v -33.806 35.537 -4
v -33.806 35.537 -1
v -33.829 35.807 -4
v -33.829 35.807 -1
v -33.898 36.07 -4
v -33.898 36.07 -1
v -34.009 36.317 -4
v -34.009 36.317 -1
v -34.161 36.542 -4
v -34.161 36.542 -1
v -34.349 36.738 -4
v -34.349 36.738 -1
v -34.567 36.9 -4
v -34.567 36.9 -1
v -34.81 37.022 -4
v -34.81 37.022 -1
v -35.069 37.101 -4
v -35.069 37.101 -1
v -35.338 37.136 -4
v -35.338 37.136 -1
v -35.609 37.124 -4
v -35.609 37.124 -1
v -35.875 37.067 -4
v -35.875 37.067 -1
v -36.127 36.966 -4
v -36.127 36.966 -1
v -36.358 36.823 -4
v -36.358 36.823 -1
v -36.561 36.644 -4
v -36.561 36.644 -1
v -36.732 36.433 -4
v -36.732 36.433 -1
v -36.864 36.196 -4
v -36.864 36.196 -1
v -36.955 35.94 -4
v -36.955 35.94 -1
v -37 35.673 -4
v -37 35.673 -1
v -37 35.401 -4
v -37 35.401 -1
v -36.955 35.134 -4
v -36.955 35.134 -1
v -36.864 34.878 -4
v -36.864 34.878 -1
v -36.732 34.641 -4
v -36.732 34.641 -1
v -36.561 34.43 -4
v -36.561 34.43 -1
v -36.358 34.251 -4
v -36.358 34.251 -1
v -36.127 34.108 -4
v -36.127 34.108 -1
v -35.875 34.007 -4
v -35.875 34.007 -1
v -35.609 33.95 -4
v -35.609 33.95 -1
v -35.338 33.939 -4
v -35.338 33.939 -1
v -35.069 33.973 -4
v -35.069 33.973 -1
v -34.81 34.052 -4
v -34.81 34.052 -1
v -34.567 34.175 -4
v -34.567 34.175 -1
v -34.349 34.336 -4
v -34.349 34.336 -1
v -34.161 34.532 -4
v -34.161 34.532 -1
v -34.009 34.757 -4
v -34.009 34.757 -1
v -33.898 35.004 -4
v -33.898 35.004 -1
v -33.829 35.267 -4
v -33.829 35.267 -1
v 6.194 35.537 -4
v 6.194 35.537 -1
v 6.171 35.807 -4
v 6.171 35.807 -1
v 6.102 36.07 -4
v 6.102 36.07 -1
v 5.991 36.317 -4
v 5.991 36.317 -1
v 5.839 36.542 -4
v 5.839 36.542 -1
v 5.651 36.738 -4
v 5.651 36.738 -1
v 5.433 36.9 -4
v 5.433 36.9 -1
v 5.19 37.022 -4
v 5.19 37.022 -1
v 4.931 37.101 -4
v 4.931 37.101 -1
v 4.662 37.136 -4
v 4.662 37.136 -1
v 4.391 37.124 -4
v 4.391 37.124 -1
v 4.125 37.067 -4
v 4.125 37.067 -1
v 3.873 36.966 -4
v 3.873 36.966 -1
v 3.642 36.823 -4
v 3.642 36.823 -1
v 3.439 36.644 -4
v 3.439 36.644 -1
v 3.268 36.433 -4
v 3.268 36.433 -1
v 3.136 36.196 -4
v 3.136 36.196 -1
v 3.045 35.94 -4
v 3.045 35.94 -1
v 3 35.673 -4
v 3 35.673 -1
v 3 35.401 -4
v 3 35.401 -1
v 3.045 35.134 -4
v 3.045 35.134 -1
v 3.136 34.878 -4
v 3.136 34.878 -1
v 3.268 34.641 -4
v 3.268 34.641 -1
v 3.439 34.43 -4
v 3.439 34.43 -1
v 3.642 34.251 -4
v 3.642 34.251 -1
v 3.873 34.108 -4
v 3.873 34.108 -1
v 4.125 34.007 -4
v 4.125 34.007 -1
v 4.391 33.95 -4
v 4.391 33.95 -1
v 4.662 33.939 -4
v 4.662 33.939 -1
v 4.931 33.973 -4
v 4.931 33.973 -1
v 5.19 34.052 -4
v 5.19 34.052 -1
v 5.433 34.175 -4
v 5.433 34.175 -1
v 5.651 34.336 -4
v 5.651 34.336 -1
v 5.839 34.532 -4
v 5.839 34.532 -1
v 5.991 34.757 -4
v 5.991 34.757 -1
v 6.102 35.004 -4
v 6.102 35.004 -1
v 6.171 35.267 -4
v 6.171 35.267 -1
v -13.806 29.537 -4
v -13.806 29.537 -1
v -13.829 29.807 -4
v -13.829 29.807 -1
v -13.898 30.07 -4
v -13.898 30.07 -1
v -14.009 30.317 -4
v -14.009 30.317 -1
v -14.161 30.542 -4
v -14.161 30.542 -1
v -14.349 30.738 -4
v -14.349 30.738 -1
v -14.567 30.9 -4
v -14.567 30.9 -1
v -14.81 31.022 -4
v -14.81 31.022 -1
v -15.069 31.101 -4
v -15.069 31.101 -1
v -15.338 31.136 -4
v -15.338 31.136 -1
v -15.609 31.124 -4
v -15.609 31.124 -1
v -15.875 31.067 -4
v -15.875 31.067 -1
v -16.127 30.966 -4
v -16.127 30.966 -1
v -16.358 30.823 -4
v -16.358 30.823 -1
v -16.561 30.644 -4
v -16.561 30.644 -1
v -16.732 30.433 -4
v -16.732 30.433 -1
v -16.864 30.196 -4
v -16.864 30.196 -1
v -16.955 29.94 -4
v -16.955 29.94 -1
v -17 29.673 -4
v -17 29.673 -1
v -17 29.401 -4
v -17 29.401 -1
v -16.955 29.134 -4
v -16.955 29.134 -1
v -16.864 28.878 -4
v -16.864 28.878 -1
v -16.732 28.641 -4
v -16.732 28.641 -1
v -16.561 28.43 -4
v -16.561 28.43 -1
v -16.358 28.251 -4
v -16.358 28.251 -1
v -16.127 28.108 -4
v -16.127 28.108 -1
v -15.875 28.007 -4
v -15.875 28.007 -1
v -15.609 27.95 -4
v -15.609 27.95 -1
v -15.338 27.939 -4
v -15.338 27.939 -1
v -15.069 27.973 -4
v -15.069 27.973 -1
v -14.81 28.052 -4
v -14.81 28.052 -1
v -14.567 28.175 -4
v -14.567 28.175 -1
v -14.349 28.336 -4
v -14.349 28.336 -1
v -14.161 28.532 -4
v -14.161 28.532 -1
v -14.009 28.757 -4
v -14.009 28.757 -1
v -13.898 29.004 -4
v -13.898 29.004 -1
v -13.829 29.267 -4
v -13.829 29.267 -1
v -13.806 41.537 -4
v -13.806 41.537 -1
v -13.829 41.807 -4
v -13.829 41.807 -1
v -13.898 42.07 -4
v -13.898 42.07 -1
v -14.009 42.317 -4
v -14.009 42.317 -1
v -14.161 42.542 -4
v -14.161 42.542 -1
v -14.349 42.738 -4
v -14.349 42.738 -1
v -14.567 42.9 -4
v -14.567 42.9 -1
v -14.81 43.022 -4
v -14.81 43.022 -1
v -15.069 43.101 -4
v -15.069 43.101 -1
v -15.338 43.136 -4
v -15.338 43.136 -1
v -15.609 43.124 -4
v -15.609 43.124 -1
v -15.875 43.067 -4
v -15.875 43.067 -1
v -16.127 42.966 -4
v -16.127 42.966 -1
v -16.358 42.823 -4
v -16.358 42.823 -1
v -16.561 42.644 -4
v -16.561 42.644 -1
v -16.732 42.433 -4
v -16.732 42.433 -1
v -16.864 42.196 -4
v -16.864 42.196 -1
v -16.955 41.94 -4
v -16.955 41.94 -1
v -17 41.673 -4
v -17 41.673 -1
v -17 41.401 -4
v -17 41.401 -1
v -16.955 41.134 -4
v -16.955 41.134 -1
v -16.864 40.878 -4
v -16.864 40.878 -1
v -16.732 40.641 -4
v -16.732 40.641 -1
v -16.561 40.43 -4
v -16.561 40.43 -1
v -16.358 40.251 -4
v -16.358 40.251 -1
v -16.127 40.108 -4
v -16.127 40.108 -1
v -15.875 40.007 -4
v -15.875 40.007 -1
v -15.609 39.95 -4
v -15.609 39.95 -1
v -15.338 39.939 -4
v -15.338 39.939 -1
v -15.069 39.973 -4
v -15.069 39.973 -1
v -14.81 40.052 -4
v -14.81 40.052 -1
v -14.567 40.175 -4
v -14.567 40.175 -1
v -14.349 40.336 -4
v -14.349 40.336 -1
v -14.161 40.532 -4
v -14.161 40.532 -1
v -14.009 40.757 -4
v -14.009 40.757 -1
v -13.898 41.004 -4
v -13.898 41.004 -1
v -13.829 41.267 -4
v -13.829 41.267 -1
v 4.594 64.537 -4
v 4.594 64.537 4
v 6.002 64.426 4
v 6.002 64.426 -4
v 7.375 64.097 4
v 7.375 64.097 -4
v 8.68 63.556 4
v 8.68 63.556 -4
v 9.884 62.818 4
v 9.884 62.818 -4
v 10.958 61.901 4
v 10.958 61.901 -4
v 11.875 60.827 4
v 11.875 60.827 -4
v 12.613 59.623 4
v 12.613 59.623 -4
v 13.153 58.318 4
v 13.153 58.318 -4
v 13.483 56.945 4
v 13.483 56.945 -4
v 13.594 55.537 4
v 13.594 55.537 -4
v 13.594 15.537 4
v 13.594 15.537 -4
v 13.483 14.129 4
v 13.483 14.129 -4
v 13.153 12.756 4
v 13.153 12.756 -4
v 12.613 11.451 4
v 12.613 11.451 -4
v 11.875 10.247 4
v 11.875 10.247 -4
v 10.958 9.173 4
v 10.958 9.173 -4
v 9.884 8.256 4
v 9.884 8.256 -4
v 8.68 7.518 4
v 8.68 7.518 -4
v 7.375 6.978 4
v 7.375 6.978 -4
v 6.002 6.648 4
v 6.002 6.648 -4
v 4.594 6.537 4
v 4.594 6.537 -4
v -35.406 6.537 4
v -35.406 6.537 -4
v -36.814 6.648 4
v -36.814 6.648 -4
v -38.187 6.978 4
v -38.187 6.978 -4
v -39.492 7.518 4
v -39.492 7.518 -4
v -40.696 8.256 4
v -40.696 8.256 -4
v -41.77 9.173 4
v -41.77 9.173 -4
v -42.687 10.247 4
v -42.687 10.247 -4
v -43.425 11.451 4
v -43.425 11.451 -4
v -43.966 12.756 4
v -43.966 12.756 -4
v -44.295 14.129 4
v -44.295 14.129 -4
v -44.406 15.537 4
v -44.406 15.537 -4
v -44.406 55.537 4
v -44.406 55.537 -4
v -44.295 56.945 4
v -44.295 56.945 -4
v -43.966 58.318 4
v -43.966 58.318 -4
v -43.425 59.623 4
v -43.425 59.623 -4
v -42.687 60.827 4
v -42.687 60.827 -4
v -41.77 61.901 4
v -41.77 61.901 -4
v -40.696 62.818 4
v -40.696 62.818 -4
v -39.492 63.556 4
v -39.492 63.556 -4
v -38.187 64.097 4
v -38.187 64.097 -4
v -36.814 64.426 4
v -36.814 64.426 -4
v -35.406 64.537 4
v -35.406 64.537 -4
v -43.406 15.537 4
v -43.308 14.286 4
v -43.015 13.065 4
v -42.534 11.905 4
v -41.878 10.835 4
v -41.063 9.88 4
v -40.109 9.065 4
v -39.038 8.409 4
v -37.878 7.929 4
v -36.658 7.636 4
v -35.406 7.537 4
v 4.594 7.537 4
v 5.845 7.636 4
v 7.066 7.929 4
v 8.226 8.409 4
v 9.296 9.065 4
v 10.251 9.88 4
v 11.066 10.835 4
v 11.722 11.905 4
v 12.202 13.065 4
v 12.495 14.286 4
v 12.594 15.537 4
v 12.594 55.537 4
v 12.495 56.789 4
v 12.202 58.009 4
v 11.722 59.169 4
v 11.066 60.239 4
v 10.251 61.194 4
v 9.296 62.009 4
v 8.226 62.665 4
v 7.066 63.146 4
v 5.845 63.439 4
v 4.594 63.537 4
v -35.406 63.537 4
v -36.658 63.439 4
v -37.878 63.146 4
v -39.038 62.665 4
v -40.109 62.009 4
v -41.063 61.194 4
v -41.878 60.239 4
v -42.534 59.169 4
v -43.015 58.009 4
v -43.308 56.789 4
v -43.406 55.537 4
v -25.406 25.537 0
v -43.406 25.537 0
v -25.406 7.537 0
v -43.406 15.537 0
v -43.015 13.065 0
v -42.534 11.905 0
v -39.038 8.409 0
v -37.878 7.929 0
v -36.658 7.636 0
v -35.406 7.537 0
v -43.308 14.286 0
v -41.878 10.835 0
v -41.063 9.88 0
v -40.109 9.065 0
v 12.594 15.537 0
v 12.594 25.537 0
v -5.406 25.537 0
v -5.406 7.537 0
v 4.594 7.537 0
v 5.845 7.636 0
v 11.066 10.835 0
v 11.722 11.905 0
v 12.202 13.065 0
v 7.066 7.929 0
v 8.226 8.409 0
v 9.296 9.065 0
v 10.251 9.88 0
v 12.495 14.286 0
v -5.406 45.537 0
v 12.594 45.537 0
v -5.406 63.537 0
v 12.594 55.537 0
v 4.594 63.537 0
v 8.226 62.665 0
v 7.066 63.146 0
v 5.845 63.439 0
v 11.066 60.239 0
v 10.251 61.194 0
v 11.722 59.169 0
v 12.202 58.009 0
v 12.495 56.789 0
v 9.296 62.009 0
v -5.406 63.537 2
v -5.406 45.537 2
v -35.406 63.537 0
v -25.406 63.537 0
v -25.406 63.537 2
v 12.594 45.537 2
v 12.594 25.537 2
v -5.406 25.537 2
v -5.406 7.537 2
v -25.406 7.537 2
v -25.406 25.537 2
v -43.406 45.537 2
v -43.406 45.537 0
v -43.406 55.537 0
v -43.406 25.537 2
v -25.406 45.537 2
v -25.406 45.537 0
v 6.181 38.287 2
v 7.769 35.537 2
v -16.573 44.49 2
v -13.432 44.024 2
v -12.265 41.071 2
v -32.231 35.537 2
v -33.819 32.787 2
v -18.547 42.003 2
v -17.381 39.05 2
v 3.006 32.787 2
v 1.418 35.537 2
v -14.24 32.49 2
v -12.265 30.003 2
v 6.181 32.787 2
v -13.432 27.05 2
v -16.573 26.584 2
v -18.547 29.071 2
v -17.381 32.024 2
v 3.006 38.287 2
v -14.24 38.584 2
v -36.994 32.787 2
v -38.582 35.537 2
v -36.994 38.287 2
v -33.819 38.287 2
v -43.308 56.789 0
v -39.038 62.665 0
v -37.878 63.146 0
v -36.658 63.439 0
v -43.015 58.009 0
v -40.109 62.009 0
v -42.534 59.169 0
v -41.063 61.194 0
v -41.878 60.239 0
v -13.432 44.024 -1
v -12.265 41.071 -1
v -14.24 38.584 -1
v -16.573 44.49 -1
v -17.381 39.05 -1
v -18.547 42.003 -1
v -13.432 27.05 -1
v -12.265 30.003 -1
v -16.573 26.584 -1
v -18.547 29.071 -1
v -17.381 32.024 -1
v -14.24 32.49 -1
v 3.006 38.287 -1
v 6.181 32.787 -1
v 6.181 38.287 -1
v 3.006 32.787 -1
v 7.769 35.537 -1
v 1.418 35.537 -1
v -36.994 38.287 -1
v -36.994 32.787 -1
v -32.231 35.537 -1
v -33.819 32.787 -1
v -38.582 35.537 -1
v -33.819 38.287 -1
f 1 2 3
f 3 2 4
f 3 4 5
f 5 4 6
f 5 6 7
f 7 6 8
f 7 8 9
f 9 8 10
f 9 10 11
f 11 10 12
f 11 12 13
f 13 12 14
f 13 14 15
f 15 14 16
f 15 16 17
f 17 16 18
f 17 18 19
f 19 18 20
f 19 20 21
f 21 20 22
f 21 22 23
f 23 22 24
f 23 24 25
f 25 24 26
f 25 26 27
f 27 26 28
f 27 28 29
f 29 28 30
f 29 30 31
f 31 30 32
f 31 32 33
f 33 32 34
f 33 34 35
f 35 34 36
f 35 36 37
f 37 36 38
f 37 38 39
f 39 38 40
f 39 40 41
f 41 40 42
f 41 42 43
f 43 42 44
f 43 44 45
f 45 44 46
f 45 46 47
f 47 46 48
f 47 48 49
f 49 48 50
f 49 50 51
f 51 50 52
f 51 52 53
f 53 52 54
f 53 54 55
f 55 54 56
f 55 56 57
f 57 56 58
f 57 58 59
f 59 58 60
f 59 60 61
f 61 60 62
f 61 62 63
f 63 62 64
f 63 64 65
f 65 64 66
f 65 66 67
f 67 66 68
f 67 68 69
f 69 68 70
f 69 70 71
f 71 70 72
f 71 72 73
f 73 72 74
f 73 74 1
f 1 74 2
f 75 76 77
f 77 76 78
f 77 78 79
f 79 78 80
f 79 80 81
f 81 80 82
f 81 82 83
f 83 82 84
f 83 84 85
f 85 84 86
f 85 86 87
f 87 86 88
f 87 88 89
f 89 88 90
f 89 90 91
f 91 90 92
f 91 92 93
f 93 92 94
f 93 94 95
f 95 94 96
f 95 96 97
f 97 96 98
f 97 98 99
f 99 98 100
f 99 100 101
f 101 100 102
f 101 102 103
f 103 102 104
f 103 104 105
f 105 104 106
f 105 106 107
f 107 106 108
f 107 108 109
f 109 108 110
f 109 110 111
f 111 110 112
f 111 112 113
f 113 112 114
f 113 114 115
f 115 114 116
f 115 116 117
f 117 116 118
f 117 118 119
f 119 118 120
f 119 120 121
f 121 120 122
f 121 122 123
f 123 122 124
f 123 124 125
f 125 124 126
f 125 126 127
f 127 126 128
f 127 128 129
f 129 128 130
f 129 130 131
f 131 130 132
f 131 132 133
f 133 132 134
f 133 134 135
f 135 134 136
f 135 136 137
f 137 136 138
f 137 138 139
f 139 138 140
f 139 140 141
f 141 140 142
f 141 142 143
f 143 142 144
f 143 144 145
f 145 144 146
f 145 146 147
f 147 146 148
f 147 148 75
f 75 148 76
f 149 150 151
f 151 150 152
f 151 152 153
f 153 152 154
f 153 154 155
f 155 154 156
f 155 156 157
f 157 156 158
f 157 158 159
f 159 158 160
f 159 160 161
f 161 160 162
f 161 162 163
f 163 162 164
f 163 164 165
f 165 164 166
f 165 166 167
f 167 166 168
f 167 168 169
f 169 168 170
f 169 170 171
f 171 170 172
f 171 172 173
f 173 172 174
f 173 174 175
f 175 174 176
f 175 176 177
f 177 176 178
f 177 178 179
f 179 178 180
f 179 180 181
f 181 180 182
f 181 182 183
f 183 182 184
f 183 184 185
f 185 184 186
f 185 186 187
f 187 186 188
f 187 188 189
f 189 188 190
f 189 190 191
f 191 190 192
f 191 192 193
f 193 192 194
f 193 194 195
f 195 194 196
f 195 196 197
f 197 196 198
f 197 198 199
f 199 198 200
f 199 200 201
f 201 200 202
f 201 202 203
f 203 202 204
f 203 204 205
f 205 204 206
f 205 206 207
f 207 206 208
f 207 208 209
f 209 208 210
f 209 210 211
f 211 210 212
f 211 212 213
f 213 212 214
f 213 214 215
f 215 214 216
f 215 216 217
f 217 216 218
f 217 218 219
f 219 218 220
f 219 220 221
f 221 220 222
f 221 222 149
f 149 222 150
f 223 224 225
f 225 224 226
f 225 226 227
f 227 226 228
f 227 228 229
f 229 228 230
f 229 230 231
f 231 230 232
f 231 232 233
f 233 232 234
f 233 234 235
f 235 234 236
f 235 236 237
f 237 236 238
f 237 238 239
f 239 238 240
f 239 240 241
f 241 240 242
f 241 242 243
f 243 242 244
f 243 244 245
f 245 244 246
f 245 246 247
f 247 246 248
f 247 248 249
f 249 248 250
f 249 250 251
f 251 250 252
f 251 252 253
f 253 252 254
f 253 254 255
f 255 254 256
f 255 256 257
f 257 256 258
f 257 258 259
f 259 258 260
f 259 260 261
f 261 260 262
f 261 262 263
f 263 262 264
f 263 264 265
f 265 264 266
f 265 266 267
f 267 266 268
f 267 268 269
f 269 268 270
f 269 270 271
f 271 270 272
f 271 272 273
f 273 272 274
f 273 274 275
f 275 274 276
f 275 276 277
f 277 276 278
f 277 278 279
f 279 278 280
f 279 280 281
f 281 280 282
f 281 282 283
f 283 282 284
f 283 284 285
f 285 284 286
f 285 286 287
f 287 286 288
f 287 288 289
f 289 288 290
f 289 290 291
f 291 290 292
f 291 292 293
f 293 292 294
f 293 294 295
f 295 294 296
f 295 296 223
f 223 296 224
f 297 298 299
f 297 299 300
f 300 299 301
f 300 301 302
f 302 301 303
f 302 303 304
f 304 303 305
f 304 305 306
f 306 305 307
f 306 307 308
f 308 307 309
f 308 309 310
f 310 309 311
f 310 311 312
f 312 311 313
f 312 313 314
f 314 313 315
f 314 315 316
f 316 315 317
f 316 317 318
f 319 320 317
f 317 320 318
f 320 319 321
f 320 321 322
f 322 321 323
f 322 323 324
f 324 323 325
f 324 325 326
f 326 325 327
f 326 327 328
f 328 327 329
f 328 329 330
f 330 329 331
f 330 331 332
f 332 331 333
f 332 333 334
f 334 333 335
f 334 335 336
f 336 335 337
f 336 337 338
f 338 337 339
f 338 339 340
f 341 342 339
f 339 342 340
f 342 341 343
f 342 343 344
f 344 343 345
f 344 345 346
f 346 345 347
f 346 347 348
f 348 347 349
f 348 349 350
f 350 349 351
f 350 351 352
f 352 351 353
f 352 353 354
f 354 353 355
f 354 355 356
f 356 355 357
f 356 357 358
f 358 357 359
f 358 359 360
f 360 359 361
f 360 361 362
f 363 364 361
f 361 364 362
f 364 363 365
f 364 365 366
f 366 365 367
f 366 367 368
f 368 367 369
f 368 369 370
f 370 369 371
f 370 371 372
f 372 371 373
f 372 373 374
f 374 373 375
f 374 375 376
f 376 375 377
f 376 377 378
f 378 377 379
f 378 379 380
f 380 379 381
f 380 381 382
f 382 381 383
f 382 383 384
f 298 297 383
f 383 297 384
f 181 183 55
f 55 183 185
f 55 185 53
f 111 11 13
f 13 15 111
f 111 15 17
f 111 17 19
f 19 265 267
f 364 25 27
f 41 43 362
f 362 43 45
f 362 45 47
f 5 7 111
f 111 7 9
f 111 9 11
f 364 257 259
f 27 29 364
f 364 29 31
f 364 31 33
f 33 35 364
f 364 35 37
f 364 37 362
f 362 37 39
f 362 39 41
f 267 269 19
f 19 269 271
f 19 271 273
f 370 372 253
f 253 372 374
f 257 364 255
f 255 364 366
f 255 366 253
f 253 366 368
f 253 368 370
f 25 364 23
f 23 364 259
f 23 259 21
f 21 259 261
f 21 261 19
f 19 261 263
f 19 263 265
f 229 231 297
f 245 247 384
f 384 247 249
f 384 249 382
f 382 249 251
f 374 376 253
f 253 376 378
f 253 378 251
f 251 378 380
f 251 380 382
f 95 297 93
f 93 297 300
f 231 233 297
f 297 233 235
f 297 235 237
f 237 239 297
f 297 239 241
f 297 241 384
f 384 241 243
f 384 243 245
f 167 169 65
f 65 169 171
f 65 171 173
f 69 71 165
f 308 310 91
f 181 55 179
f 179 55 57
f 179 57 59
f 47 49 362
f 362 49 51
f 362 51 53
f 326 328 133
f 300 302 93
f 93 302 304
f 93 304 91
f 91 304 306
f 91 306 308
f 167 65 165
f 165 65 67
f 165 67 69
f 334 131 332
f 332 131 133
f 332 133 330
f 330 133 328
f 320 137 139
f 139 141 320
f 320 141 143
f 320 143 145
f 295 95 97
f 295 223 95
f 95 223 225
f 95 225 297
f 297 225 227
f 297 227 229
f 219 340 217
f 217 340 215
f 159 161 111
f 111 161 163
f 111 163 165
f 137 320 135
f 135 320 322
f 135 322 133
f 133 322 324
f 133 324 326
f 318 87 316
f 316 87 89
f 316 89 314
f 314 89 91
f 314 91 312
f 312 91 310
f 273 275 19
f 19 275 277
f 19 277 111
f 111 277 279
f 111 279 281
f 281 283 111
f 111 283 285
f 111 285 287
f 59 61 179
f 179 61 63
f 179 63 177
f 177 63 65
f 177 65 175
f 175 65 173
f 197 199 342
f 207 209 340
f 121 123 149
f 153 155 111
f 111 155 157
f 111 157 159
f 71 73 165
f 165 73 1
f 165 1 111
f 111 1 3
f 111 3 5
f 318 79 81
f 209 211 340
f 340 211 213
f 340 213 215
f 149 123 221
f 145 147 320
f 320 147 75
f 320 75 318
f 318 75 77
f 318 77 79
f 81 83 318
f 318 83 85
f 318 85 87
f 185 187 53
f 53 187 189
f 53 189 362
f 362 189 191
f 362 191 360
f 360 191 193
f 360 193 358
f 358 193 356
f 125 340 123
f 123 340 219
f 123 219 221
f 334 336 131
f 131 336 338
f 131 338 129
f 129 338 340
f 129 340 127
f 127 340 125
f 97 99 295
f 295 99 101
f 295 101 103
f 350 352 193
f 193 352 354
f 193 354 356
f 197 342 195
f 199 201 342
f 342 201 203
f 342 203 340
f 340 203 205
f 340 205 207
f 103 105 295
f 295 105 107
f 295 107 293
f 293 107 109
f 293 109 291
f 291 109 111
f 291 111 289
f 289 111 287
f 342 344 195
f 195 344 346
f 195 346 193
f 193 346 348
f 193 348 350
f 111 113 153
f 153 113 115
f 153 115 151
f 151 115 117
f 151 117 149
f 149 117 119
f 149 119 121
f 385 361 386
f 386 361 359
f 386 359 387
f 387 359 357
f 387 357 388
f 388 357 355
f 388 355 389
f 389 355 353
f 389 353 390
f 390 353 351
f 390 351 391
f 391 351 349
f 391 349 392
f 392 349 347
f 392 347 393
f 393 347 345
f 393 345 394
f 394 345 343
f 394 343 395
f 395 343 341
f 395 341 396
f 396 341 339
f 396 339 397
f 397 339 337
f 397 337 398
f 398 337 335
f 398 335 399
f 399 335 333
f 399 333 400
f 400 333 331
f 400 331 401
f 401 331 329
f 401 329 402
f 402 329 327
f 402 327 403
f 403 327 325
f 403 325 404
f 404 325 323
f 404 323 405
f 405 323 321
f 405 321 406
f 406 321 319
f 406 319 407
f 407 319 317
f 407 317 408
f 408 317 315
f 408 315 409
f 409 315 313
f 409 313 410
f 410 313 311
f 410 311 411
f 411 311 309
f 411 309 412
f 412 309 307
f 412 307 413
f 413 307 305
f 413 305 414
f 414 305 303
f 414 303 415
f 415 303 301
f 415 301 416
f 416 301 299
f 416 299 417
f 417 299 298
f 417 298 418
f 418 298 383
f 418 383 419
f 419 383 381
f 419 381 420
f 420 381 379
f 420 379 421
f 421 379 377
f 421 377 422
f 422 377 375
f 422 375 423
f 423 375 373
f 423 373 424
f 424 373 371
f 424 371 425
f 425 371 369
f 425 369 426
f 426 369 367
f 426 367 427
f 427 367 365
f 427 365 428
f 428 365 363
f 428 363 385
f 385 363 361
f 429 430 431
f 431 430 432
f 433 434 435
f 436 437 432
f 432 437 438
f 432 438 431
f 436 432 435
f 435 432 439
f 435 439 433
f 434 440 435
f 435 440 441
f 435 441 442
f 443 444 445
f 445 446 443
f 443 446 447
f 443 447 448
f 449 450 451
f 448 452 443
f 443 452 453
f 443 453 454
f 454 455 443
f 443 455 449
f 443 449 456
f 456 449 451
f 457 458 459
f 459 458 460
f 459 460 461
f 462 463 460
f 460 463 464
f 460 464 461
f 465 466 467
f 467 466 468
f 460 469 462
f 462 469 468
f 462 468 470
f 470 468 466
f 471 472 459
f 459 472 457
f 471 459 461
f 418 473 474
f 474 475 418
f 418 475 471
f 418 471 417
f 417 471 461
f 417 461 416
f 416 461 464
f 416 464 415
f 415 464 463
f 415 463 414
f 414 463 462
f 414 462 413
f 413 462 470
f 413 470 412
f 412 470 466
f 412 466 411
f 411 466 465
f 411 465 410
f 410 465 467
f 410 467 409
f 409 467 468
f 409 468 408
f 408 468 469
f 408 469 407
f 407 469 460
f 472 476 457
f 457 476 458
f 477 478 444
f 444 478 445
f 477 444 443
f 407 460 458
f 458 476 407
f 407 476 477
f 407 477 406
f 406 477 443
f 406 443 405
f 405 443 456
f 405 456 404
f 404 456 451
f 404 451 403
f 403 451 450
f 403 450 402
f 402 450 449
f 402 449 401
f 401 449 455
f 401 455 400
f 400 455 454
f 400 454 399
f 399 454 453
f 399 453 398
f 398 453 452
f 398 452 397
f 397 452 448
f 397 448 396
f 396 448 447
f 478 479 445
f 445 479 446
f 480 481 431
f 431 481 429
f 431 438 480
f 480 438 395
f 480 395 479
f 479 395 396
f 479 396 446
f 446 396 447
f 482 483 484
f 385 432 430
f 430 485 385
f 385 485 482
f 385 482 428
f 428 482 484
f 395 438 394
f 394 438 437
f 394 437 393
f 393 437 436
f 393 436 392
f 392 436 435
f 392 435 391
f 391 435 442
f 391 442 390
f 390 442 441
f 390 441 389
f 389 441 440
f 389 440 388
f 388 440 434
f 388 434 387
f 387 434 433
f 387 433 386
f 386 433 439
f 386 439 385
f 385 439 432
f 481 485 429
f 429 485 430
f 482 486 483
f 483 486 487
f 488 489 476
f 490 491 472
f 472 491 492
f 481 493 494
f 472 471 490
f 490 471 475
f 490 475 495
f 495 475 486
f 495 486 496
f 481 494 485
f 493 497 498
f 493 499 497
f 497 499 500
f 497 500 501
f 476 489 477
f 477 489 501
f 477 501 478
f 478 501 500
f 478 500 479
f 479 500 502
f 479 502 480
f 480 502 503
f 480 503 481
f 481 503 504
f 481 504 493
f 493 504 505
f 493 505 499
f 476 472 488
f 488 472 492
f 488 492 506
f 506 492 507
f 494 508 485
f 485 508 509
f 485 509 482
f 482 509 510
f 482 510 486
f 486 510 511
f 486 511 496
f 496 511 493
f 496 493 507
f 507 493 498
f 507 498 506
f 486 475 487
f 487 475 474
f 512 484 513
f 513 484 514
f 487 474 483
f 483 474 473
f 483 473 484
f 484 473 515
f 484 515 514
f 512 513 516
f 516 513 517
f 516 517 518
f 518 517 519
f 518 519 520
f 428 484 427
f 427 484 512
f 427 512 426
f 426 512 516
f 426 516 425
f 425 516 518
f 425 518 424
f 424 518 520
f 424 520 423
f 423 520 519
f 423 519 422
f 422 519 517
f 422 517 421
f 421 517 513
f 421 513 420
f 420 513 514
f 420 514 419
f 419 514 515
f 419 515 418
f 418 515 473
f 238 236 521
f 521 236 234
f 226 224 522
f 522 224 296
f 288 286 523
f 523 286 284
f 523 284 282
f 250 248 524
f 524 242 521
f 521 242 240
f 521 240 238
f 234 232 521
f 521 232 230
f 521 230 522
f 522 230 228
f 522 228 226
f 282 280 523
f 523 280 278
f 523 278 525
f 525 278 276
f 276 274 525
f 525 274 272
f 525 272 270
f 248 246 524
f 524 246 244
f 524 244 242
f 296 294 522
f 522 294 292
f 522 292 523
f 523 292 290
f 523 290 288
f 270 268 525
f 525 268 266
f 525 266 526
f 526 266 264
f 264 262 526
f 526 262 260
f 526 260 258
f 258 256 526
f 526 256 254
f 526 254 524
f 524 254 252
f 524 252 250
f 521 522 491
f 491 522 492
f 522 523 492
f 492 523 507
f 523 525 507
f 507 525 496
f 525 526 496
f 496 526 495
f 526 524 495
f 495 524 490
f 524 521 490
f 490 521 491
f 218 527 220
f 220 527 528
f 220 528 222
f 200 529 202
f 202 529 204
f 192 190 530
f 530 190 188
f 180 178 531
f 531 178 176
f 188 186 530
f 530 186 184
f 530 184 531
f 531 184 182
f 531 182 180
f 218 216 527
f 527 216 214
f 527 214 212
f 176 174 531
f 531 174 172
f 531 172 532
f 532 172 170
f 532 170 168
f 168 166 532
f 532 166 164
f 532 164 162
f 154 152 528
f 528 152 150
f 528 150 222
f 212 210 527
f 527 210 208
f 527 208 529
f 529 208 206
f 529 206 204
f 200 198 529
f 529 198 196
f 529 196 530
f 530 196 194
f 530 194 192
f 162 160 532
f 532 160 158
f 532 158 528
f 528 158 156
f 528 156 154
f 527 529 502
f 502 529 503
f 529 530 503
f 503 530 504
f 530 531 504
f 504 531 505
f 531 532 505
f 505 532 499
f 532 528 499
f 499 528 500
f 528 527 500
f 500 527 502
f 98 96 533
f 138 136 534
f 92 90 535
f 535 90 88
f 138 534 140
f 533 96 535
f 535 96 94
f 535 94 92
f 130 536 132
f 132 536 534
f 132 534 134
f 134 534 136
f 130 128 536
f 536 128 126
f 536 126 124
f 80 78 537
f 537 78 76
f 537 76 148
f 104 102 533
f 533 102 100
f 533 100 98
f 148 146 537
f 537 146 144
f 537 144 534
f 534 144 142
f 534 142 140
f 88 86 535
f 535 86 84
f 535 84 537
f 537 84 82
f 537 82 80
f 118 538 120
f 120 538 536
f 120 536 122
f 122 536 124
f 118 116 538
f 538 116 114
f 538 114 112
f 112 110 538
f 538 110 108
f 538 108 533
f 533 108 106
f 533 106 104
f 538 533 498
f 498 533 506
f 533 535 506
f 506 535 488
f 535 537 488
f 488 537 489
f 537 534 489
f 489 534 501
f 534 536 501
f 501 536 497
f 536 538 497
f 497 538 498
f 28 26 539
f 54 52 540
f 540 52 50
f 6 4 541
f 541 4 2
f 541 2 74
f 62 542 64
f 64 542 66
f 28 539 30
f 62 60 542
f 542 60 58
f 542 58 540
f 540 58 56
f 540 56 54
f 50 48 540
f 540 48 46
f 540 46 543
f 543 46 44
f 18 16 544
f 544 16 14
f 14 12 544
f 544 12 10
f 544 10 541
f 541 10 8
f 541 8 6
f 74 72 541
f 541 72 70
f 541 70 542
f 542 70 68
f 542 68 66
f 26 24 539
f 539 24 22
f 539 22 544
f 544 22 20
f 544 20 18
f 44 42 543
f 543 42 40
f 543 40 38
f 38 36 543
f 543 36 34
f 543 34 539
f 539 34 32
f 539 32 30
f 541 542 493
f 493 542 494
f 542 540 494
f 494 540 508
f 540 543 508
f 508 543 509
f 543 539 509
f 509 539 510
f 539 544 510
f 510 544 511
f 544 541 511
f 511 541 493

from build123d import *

# Parameters (mm, degrees)
EXTRUDE_1_DEPTH     = 4
EXTRUDE_START       = 2
EXTRUDE_2_DEPTH     = 2
EXTRUDE_3_DEPTH     = 2
SKETCH_4_R          = 1.6
CUT_EXTRUDE_1_DEPTH = 10
CUT_EXTRUDE_2_DEPTH = 3


with BuildPart() as part:
    # 草图1 → 凸台-拉伸1 (new body)
    with BuildSketch(Plane.XY):
        with BuildLine():
            Line((-35.40625, 64.537081934), (4.59375, 64.537081934))
            ThreePointArc((4.59375, 64.537081934), (10.957711031, 61.901042965), (13.59375, 55.537081934))
            Line((13.59375, 55.537081934), (13.59375, 15.537081934))
            ThreePointArc((13.59375, 15.537081934), (10.957711031, 9.173120903), (4.59375, 6.537081934))
            Line((4.59375, 6.537081934), (-35.40625, 6.537081934))
            ThreePointArc((-35.40625, 6.537081934), (-41.770211031, 9.173120903), (-44.40625, 15.537081934))
            Line((-44.40625, 15.537081934), (-44.40625, 55.537081934))
            ThreePointArc((-44.40625, 55.537081934), (-41.770211031, 61.901042965), (-35.40625, 64.537081934))
        make_face()
    extrude(amount=-EXTRUDE_1_DEPTH)

    # 草图2 → 凸台-拉伸2 (add)
    with BuildSketch(Plane.XY.offset(EXTRUDE_START)):
        with BuildLine():
            Line((13.59375, 15.537081934), (13.59375, 55.537081934))
            ThreePointArc((13.59375, 55.537081934), (10.957711031, 61.901042965), (4.59375, 64.537081934))
            Line((4.59375, 64.537081934), (-35.40625, 64.537081934))
            ThreePointArc((-35.40625, 64.537081934), (-41.770211031, 61.901042965), (-44.40625, 55.537081934))
            Line((-44.40625, 55.537081934), (-44.40625, 15.537081934))
            ThreePointArc((-44.40625, 15.537081934), (-41.770211031, 9.173120903), (-35.40625, 6.537081934))
            Line((-35.40625, 6.537081934), (4.59375, 6.537081934))
            ThreePointArc((4.59375, 6.537081934), (10.957711031, 9.173120903), (13.59375, 15.537081934))
        make_face()
        with BuildLine():
            Line((-35.40625, 63.537081934), (-25.40625, 63.537081934))
            Line((-25.40625, 63.537081934), (-25.40625, 45.537081934))
            Line((-25.40625, 45.537081934), (-43.40625, 45.537081934))
            Line((-43.40625, 45.537081934), (-43.40625, 55.537081934))
            ThreePointArc((-43.40625, 55.537081934), (-41.063104249, 61.193936184), (-35.40625, 63.537081934))
        make_face(mode=Mode.SUBTRACT)
        with BuildLine():
            Line((12.59375, 55.537081934), (12.59375, 45.537081934))
            Line((12.59375, 45.537081934), (-5.40625, 45.537081934))
            Line((-5.40625, 45.537081934), (-5.40625, 63.537081934))
            Line((-5.40625, 63.537081934), (4.59375, 63.537081934))
            ThreePointArc((4.59375, 63.537081934), (10.250604249, 61.193936184), (12.59375, 55.537081934))
        make_face(mode=Mode.SUBTRACT)
        with BuildLine():
            Line((-35.40625, 7.537081934), (-25.40625, 7.537081934))
            Line((-25.40625, 7.537081934), (-25.40625, 25.537081934))
            Line((-25.40625, 25.537081934), (-43.40625, 25.537081934))
            Line((-43.40625, 25.537081934), (-43.40625, 15.537081934))
            ThreePointArc((-43.40625, 15.537081934), (-41.063104249, 9.880227685), (-35.40625, 7.537081934))
        make_face(mode=Mode.SUBTRACT)
        with BuildLine():
            Line((-5.40625, 25.537081934), (12.59375, 25.537081934))
            Line((12.59375, 25.537081934), (12.59375, 15.537081934))
            ThreePointArc((12.59375, 15.537081934), (10.250604249, 9.880227685), (4.59375, 7.537081934))
            Line((4.59375, 7.537081934), (-5.40625, 7.537081934))
            Line((-5.40625, 7.537081934), (-5.40625, 25.537081934))
        make_face(mode=Mode.SUBTRACT)
    extrude(amount=-EXTRUDE_2_DEPTH)

    # 草图3 → 凸台-拉伸3 (add)
    with BuildSketch(Plane.XY.offset(2).offset(EXTRUDE_START)):
        with BuildLine():
            Line((13.59375, 15.537081934), (13.59375, 55.537081934))
            ThreePointArc((13.59375, 55.537081934), (10.957711031, 61.901042965), (4.59375, 64.537081934))
            Line((4.59375, 64.537081934), (-35.40625, 64.537081934))
            ThreePointArc((-35.40625, 64.537081934), (-41.770211031, 61.901042965), (-44.40625, 55.537081934))
            Line((-44.40625, 55.537081934), (-44.40625, 15.537081934))
            ThreePointArc((-44.40625, 15.537081934), (-41.770211031, 9.173120903), (-35.40625, 6.537081934))
            Line((-35.40625, 6.537081934), (4.59375, 6.537081934))
            ThreePointArc((4.59375, 6.537081934), (10.957711031, 9.173120903), (13.59375, 15.537081934))
        make_face()
        with BuildLine():
            Line((-43.40625, 55.537081934), (-43.40625, 45.537081934))
            Line((-43.40625, 45.537081934), (-43.40625, 25.537081934))
            Line((-43.40625, 25.537081934), (-43.40625, 15.537081934))
            ThreePointArc((-43.40625, 15.537081934), (-41.063104249, 9.880227685), (-35.40625, 7.537081934))
            Line((-35.40625, 7.537081934), (-25.40625, 7.537081934))
            Line((-25.40625, 7.537081934), (-5.40625, 7.537081934))
            Line((-5.40625, 7.537081934), (4.59375, 7.537081934))
            ThreePointArc((4.59375, 7.537081934), (10.250604249, 9.880227685), (12.59375, 15.537081934))
            Line((12.59375, 15.537081934), (12.59375, 25.537081934))
            Line((12.59375, 25.537081934), (12.59375, 45.537081934))
            Line((12.59375, 45.537081934), (12.59375, 55.537081934))
            ThreePointArc((12.59375, 55.537081934), (10.250604249, 61.193936184), (4.59375, 63.537081934))
            Line((4.59375, 63.537081934), (-5.40625, 63.537081934))
            Line((-5.40625, 63.537081934), (-25.40625, 63.537081934))
            Line((-25.40625, 63.537081934), (-35.40625, 63.537081934))
            ThreePointArc((-35.40625, 63.537081934), (-41.063104249, 61.193936184), (-43.40625, 55.537081934))
        make_face(mode=Mode.SUBTRACT)
    extrude(amount=-EXTRUDE_3_DEPTH)

    # 草图4 → 切除-拉伸1 (cut)
    with BuildSketch(Plane.XY.offset(2)):
        with Locations((-15.40625, 41.537081934)):
            Circle(SKETCH_4_R)
        with Locations((-15.40625, 29.537081934)):
            Circle(SKETCH_4_R)
        with Locations((4.59375, 35.537081934)):
            Circle(SKETCH_4_R)
        with Locations((-35.40625, 35.537081934)):
            Circle(SKETCH_4_R)
    extrude(amount=-CUT_EXTRUDE_1_DEPTH, mode=Mode.SUBTRACT)

    # 草图5 → 切除-拉伸2 (cut)
    with BuildSketch(Plane.XY.offset(2)):
        Polygon((-13.431907117, 44.024108978), (-16.572907158, 44.490426548), (-18.547250041, 42.003399505), (-17.380592883, 39.050054891), (-14.239592842, 38.58373732), (-12.265249959, 41.070764364), align=None)
        Polygon((1.418323519, 35.537081934), (3.00603676, 32.787081934), (6.18146324, 32.787081934), (7.769176481, 35.537081934), (6.18146324, 38.287081934), (3.00603676, 38.287081934), align=None)
        Polygon((-13.431907117, 27.050054891), (-12.265249959, 30.003399505), (-14.239592842, 32.490426548), (-17.380592883, 32.024108978), (-18.547250041, 29.070764364), (-16.572907158, 26.58373732), align=None)
        Polygon((-32.230823519, 35.537081934), (-33.81853676, 38.287081934), (-36.99396324, 38.287081934), (-38.581676481, 35.537081934), (-36.99396324, 32.787081934), (-33.81853676, 32.787081934), align=None)
    extrude(amount=-CUT_EXTRUDE_2_DEPTH, mode=Mode.SUBTRACT)


solid = part.part
